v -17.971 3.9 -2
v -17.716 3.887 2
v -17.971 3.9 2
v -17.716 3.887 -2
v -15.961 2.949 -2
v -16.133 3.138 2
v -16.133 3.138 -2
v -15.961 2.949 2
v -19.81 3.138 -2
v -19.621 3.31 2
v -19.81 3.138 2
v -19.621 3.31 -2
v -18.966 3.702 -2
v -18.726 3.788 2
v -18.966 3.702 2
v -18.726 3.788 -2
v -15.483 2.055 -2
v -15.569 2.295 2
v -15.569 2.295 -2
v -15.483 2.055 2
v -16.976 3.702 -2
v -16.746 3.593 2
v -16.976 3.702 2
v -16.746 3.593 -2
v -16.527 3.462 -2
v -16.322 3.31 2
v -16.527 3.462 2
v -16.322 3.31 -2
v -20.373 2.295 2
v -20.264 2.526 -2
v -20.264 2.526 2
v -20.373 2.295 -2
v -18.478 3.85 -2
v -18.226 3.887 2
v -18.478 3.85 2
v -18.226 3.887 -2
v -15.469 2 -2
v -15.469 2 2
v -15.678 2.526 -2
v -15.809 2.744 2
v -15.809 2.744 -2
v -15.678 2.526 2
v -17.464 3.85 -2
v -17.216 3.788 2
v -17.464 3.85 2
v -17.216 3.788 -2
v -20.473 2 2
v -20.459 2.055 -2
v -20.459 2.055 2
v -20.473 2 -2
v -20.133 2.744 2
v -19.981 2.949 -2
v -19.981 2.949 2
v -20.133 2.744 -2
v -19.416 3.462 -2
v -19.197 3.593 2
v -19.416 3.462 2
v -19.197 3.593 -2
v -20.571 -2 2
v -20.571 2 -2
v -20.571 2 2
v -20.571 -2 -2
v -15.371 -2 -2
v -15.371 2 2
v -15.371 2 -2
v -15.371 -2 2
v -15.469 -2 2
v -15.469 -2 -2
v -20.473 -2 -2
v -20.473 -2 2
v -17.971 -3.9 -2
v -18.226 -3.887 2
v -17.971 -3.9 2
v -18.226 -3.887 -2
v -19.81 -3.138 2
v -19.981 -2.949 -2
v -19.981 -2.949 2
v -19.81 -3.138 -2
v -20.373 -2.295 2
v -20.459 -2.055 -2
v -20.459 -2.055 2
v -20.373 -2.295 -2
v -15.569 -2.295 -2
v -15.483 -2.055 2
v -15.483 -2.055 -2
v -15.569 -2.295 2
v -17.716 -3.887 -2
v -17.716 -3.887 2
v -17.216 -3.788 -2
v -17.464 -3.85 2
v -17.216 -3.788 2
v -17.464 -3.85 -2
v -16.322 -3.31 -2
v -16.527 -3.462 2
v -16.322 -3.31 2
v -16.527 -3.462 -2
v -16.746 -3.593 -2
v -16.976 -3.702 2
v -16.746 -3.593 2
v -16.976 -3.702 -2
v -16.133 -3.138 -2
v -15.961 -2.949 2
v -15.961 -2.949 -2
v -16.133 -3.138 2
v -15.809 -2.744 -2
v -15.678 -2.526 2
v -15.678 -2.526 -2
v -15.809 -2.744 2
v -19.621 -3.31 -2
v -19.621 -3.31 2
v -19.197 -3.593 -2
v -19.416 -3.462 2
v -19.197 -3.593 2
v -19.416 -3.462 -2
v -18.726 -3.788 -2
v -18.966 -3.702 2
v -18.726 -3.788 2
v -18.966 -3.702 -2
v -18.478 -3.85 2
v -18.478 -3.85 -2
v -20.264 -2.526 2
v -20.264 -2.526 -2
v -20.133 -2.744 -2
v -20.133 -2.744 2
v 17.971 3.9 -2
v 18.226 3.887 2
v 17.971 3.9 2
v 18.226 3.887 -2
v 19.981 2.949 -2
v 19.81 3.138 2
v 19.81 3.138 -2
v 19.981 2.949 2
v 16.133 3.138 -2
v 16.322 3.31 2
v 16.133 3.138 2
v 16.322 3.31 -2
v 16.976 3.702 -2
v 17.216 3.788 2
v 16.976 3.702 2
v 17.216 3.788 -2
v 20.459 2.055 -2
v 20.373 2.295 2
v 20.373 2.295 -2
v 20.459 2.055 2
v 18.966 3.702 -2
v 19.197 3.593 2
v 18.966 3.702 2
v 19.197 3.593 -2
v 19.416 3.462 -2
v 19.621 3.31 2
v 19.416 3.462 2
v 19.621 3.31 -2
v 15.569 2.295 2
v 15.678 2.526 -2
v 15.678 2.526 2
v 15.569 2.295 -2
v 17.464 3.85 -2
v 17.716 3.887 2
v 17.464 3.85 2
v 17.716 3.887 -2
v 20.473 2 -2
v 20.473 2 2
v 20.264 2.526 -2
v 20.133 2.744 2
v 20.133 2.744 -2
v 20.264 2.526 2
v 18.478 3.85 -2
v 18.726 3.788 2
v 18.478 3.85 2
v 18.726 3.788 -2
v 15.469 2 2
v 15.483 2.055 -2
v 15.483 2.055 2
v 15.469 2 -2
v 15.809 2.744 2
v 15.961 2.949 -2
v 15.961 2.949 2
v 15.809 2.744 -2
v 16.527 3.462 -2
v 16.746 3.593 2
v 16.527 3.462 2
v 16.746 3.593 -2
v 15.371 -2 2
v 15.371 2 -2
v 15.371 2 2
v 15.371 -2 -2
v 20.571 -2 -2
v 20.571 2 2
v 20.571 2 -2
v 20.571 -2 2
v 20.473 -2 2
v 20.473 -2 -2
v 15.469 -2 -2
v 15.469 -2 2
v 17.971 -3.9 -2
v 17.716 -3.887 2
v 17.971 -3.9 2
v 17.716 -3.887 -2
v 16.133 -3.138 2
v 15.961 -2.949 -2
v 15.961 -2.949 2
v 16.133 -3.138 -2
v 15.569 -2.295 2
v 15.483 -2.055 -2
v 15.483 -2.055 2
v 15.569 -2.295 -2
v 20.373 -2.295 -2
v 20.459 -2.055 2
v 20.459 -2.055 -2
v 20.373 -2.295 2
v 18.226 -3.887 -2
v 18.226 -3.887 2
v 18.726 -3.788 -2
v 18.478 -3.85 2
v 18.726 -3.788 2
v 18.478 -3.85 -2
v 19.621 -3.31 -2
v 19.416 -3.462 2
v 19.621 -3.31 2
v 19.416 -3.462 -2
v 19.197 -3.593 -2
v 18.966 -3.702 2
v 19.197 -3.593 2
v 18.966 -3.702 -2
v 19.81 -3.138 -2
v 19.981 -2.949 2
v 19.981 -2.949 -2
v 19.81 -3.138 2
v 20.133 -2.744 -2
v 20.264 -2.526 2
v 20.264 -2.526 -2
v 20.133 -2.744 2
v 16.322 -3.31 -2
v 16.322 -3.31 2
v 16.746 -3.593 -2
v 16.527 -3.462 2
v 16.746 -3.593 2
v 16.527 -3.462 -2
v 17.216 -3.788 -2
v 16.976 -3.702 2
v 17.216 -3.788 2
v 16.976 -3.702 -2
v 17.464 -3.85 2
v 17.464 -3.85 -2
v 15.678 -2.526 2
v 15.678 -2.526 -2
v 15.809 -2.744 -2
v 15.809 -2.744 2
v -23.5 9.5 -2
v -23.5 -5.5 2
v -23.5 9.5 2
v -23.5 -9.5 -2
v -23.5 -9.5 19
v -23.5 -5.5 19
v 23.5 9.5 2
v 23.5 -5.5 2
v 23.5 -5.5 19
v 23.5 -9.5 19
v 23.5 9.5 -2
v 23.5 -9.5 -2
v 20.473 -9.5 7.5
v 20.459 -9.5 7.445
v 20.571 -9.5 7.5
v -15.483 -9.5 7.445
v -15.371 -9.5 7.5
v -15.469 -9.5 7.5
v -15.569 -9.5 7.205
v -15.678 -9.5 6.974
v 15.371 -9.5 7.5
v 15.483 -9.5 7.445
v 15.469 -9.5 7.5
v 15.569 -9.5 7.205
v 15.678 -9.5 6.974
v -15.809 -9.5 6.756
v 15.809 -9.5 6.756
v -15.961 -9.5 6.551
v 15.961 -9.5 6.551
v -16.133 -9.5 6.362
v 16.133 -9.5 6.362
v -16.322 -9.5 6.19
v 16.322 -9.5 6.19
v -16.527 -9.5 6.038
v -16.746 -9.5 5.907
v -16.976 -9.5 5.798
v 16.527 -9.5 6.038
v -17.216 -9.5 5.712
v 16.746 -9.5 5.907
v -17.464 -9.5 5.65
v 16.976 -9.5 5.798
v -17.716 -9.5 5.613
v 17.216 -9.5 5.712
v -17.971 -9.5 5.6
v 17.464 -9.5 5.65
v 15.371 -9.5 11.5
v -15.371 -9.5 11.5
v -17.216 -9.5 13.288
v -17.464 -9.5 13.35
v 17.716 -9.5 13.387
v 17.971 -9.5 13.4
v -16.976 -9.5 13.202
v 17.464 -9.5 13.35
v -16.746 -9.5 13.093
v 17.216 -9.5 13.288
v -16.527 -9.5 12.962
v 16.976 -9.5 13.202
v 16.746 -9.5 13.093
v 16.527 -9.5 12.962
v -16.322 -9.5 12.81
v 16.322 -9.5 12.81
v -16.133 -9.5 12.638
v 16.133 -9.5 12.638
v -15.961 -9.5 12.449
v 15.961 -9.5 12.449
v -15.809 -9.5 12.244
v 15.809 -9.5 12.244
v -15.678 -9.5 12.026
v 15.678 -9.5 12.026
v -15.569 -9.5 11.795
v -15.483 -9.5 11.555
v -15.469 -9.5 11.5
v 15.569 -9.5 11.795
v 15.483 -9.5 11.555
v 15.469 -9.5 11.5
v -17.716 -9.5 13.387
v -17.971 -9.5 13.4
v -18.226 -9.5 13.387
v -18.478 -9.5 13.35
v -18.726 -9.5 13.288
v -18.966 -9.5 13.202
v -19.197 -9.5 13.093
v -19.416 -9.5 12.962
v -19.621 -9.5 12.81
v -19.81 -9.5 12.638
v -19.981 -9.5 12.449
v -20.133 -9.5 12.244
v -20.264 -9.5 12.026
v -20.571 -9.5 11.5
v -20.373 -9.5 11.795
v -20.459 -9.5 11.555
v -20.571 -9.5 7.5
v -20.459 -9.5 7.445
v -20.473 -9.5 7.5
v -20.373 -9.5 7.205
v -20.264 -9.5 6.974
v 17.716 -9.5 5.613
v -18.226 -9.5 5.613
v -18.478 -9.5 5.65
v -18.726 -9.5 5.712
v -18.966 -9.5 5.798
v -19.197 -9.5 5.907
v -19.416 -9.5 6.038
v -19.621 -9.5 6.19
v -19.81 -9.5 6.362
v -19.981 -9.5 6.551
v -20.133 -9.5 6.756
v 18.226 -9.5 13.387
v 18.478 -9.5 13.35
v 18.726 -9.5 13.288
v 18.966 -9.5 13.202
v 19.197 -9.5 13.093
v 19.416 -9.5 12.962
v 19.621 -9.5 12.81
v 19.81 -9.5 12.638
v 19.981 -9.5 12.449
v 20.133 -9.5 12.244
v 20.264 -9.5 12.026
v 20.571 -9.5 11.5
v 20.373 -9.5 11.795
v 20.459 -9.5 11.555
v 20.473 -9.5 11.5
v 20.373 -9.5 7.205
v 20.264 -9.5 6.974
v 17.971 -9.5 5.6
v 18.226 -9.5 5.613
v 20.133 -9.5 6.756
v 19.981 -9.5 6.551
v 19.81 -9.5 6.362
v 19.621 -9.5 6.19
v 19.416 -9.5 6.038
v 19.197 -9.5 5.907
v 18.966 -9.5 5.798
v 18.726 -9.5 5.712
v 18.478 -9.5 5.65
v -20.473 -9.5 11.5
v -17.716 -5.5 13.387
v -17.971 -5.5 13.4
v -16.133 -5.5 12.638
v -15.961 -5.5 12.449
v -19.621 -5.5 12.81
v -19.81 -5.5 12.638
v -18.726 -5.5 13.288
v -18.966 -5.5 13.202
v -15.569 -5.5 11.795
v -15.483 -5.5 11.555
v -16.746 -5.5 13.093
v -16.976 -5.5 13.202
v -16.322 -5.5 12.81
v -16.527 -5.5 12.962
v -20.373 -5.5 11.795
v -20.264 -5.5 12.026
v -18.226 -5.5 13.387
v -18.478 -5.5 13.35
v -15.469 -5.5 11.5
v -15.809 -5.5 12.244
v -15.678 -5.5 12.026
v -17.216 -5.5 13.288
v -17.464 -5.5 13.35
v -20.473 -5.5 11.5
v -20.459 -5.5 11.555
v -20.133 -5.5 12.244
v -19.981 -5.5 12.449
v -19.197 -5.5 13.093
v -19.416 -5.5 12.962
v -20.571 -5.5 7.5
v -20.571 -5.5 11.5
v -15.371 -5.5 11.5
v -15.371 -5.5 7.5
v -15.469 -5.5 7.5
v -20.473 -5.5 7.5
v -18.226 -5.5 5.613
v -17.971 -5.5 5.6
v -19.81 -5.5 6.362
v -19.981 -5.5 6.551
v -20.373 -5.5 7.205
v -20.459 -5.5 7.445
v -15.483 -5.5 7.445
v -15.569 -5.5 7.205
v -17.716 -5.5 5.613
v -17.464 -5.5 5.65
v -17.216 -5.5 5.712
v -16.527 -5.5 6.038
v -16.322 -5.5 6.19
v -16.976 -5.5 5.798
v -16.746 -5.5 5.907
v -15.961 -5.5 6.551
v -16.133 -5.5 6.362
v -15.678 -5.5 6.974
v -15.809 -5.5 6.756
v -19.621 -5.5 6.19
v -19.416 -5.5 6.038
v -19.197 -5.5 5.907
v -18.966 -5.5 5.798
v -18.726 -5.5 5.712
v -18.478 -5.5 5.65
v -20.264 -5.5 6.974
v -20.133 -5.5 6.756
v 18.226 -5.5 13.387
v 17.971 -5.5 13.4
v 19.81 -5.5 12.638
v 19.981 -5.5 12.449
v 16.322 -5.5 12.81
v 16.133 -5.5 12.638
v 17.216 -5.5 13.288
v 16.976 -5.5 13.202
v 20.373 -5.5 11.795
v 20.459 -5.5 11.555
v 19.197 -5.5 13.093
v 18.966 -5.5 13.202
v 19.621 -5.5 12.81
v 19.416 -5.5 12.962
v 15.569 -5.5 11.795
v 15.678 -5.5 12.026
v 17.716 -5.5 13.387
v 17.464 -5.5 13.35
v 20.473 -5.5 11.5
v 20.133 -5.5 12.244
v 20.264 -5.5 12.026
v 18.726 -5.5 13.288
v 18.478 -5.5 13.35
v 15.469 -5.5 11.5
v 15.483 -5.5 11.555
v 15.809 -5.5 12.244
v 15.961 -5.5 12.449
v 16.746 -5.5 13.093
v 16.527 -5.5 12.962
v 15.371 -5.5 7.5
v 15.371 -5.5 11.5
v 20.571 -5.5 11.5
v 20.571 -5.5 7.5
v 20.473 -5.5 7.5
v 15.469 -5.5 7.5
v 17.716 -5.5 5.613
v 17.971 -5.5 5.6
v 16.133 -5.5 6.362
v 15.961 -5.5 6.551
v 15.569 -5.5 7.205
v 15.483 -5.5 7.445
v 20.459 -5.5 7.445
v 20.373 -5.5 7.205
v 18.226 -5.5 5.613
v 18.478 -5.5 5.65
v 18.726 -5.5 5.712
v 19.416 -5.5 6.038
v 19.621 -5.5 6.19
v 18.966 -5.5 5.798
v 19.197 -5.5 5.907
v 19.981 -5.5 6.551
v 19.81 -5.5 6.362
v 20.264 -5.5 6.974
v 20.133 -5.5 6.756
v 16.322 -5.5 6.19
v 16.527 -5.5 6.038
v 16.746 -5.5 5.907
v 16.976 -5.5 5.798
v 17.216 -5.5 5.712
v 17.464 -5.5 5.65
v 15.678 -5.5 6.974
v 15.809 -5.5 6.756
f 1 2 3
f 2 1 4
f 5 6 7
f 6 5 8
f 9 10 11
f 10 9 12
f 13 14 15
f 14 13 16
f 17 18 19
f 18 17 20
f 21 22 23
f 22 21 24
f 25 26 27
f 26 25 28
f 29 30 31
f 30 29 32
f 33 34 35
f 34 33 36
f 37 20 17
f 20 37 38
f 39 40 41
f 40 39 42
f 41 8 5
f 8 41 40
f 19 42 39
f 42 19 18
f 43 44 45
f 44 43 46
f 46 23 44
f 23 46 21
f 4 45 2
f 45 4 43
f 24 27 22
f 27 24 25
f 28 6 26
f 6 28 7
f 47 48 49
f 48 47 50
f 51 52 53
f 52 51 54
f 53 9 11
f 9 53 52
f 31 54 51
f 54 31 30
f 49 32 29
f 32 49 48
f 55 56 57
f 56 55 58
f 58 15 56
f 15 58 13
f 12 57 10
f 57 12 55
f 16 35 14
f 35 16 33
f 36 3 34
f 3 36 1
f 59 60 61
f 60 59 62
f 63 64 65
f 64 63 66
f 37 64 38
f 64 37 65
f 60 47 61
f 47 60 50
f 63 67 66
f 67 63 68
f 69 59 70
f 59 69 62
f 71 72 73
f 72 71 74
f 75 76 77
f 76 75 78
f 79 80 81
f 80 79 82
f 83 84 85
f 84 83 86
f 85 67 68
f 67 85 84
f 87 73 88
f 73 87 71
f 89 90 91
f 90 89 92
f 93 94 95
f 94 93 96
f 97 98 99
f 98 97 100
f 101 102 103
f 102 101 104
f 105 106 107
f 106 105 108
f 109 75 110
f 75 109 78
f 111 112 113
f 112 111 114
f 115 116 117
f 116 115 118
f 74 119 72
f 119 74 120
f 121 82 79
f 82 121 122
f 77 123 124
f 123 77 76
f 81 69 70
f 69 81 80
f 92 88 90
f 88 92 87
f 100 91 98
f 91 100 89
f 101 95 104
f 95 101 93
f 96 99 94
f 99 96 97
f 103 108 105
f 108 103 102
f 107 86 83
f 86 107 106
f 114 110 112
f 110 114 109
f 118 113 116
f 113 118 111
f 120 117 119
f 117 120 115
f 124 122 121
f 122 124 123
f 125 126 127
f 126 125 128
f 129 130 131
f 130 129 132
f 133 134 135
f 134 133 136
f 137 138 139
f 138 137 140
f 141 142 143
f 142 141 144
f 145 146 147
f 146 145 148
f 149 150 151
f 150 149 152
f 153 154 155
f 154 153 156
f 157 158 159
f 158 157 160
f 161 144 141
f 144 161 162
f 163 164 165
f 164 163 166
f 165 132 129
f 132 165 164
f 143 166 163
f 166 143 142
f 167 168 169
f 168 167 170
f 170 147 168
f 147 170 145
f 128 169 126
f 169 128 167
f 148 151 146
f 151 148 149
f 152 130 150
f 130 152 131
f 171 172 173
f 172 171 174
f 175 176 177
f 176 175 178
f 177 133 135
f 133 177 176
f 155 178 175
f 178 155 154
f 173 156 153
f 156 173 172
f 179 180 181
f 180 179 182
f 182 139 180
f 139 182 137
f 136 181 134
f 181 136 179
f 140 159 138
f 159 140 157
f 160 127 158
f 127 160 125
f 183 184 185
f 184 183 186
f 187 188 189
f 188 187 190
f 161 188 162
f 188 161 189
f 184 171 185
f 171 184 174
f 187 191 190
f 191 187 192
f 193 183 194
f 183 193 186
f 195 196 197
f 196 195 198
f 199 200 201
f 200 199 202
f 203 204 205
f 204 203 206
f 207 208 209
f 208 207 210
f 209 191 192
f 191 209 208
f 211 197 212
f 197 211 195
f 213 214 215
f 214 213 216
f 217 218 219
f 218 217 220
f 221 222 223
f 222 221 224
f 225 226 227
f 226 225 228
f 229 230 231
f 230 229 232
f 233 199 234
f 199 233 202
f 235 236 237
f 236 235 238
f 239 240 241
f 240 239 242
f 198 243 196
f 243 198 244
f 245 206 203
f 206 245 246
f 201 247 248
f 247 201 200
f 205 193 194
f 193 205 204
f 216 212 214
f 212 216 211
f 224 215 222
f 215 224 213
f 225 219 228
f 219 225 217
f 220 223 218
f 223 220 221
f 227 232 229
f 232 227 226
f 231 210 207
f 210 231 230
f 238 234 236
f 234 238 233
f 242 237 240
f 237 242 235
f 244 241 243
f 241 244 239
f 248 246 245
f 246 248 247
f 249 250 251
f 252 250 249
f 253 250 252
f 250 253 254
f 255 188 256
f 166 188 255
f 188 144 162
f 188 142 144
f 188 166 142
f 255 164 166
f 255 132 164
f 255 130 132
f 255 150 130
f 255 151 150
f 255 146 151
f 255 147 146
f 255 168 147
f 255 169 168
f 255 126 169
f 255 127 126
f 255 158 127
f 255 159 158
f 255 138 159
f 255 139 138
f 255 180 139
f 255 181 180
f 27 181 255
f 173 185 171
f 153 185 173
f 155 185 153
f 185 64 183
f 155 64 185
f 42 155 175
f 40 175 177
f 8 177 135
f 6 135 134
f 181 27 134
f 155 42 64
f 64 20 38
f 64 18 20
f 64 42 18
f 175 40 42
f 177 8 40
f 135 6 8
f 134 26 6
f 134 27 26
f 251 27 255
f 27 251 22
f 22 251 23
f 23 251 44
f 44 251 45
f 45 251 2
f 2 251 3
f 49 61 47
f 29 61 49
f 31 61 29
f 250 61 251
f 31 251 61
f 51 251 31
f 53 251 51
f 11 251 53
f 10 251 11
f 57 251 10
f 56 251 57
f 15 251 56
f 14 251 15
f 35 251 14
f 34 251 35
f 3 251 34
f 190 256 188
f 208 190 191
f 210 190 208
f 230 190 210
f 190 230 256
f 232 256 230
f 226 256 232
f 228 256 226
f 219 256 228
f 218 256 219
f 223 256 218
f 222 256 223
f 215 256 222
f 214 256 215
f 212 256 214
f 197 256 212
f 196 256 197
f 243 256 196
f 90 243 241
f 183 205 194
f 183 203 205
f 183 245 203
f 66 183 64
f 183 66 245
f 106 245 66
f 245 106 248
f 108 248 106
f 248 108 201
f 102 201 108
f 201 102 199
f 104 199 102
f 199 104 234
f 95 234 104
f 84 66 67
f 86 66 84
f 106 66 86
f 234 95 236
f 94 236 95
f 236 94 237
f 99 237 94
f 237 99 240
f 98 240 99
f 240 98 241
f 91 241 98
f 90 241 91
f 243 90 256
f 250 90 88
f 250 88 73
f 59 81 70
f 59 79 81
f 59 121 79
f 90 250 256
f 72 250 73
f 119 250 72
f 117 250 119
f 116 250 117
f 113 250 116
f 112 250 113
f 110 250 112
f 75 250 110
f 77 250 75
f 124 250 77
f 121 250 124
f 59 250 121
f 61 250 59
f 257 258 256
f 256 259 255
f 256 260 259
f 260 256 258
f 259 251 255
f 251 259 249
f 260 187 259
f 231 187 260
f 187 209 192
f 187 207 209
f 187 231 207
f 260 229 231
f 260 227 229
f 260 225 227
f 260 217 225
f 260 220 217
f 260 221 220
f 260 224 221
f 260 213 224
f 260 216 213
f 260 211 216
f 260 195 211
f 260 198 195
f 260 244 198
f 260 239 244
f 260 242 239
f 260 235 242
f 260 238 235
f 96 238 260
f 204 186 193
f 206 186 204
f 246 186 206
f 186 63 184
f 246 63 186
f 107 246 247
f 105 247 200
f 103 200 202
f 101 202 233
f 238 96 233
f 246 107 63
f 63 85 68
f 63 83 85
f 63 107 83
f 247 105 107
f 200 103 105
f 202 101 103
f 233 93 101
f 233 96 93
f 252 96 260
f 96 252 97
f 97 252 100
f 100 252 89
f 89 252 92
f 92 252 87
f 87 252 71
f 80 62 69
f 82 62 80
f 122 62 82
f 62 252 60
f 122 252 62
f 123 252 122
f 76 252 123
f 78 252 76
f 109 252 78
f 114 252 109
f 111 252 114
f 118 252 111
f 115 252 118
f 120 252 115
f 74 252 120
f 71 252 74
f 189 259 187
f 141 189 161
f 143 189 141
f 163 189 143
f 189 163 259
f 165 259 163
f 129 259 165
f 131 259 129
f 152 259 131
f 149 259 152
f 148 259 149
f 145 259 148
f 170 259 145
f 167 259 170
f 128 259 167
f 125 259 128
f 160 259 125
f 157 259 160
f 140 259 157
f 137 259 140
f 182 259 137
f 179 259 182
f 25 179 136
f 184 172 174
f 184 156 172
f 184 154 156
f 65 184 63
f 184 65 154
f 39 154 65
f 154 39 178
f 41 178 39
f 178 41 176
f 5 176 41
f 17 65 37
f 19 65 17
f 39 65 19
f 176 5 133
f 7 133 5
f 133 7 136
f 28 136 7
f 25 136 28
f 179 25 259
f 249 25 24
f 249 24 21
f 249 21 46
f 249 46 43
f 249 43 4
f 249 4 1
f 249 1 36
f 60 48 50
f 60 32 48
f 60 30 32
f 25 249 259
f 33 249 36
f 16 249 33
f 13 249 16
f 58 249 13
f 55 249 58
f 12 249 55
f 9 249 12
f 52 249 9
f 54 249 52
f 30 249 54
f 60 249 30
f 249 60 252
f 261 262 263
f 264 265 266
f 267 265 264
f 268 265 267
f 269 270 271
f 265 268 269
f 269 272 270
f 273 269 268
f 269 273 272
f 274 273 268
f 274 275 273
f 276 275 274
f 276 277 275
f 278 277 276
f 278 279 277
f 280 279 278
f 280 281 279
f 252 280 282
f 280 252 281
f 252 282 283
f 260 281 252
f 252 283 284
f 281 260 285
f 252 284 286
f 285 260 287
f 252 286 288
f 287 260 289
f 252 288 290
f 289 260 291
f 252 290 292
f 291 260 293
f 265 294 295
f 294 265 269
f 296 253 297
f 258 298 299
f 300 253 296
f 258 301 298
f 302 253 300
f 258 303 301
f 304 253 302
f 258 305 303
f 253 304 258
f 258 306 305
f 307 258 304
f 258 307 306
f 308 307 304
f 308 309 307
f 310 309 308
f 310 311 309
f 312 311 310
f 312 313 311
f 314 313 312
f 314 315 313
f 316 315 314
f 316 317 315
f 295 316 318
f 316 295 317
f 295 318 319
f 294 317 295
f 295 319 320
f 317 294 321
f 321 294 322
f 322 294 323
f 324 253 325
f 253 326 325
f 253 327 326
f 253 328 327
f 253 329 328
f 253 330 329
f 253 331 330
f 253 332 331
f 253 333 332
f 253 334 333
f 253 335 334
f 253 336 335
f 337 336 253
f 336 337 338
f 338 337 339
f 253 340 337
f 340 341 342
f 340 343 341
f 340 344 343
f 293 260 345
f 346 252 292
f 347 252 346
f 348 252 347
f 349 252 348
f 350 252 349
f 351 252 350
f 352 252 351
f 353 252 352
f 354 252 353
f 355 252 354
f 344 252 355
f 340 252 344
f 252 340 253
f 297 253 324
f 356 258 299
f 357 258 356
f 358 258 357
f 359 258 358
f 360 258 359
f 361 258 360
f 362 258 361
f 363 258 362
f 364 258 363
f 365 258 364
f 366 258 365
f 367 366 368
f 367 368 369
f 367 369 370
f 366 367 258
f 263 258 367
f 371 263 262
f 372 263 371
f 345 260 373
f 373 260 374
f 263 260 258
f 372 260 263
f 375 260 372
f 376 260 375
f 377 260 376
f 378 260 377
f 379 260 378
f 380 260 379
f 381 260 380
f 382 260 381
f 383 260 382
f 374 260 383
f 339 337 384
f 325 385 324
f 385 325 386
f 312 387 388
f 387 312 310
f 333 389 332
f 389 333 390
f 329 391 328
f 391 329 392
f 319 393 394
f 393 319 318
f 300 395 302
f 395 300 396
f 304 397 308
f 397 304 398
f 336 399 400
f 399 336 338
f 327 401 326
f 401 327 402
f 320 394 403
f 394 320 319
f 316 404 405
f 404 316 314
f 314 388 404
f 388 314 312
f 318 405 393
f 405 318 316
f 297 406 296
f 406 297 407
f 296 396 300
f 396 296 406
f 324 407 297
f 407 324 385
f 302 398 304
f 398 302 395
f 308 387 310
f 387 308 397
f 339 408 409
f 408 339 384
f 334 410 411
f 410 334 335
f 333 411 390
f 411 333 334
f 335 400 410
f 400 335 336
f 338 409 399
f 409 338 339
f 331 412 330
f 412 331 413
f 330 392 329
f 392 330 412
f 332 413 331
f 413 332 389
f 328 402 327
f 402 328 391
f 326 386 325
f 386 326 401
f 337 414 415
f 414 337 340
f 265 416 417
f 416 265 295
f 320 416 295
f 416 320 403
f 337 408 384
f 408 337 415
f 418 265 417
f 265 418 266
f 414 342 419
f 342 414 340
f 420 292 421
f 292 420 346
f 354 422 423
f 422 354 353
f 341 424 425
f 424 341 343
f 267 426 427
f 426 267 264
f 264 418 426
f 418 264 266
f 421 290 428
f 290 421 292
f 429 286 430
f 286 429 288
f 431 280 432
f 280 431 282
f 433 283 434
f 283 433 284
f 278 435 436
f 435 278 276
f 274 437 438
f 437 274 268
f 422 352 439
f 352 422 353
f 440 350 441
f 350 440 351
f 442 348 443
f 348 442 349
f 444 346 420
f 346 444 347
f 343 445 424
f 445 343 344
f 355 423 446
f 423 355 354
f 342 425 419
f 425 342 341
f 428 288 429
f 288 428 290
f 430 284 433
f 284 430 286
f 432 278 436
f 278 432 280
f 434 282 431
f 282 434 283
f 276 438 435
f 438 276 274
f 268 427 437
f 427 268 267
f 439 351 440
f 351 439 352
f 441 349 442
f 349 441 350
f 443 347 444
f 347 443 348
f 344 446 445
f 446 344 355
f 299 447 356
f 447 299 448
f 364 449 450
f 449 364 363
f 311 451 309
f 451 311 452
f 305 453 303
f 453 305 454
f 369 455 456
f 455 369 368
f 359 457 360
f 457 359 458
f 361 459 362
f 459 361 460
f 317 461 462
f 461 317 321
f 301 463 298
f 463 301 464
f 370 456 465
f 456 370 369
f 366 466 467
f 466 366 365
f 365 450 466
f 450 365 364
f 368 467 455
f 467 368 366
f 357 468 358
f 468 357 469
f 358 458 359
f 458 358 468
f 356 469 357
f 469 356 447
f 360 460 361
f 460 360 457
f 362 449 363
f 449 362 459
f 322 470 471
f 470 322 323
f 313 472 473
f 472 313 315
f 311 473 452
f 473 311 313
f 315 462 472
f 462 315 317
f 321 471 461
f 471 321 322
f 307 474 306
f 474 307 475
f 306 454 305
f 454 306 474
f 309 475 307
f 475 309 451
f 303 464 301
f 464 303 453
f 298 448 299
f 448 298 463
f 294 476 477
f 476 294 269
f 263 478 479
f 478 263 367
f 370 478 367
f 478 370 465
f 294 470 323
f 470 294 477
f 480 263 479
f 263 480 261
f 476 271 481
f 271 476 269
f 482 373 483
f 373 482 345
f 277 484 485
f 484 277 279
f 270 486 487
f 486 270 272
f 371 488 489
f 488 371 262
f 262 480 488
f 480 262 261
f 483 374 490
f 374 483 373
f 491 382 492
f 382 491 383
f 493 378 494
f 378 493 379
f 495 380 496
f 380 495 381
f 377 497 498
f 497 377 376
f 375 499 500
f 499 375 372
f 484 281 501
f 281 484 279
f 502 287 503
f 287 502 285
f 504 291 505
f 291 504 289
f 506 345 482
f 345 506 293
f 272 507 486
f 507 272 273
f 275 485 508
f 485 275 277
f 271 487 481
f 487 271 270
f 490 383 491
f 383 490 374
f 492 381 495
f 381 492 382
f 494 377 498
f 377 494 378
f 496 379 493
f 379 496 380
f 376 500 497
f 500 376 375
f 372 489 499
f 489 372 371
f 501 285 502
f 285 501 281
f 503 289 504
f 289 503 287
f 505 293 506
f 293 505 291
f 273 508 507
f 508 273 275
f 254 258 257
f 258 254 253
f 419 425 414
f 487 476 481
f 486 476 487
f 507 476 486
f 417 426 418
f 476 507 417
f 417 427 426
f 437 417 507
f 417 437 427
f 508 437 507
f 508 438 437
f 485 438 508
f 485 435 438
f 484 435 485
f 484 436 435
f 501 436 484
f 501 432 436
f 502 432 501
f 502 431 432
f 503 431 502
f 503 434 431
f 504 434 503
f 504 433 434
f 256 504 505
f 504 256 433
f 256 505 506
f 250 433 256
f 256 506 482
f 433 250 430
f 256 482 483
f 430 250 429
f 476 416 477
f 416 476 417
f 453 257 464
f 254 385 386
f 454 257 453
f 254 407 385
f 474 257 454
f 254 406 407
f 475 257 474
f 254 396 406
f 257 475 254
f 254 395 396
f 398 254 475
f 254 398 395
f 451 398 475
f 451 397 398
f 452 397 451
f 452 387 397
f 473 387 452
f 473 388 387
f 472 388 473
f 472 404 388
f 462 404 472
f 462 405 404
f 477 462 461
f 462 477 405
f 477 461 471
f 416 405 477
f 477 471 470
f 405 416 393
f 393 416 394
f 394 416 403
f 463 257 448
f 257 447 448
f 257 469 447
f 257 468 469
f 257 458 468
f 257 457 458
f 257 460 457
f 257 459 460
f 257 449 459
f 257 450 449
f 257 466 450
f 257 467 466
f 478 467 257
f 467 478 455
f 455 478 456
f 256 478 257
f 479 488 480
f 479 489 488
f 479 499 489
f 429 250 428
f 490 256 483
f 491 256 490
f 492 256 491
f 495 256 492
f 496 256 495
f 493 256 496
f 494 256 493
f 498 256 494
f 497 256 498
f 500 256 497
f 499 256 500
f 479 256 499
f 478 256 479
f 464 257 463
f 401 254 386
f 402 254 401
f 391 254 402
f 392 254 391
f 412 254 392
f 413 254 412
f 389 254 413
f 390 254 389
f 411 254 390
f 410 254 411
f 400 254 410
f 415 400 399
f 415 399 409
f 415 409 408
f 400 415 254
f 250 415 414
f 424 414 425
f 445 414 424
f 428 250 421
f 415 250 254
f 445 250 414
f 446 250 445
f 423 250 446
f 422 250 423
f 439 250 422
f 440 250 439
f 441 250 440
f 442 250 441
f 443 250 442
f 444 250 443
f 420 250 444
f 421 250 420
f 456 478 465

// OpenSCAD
$fn=64;
x1=71.8846;
x=47;
y=19;
z=4;
echo(x/2-x1/4-2.6);

module bolt_slat(){
    translate([0,1.3,0])
    cylinder(100,2.6,2.6);
    translate([0,0,50])
    cube([5.2,4,100],center=true);
    translate([0,-1.3,0])
    cylinder(100,2.6,2.6);
}

module slat(){
difference(){
    cube([x,y,z],center=true);
    translate([-x1/4,0,-10]) 
    bolt_slat();
    
    translate([x1/4,0,-10]) 
    bolt_slat();
}
}

slat();

rotate([90,0,0])
translate([0,y/2,y/2-z/2])
slat();
